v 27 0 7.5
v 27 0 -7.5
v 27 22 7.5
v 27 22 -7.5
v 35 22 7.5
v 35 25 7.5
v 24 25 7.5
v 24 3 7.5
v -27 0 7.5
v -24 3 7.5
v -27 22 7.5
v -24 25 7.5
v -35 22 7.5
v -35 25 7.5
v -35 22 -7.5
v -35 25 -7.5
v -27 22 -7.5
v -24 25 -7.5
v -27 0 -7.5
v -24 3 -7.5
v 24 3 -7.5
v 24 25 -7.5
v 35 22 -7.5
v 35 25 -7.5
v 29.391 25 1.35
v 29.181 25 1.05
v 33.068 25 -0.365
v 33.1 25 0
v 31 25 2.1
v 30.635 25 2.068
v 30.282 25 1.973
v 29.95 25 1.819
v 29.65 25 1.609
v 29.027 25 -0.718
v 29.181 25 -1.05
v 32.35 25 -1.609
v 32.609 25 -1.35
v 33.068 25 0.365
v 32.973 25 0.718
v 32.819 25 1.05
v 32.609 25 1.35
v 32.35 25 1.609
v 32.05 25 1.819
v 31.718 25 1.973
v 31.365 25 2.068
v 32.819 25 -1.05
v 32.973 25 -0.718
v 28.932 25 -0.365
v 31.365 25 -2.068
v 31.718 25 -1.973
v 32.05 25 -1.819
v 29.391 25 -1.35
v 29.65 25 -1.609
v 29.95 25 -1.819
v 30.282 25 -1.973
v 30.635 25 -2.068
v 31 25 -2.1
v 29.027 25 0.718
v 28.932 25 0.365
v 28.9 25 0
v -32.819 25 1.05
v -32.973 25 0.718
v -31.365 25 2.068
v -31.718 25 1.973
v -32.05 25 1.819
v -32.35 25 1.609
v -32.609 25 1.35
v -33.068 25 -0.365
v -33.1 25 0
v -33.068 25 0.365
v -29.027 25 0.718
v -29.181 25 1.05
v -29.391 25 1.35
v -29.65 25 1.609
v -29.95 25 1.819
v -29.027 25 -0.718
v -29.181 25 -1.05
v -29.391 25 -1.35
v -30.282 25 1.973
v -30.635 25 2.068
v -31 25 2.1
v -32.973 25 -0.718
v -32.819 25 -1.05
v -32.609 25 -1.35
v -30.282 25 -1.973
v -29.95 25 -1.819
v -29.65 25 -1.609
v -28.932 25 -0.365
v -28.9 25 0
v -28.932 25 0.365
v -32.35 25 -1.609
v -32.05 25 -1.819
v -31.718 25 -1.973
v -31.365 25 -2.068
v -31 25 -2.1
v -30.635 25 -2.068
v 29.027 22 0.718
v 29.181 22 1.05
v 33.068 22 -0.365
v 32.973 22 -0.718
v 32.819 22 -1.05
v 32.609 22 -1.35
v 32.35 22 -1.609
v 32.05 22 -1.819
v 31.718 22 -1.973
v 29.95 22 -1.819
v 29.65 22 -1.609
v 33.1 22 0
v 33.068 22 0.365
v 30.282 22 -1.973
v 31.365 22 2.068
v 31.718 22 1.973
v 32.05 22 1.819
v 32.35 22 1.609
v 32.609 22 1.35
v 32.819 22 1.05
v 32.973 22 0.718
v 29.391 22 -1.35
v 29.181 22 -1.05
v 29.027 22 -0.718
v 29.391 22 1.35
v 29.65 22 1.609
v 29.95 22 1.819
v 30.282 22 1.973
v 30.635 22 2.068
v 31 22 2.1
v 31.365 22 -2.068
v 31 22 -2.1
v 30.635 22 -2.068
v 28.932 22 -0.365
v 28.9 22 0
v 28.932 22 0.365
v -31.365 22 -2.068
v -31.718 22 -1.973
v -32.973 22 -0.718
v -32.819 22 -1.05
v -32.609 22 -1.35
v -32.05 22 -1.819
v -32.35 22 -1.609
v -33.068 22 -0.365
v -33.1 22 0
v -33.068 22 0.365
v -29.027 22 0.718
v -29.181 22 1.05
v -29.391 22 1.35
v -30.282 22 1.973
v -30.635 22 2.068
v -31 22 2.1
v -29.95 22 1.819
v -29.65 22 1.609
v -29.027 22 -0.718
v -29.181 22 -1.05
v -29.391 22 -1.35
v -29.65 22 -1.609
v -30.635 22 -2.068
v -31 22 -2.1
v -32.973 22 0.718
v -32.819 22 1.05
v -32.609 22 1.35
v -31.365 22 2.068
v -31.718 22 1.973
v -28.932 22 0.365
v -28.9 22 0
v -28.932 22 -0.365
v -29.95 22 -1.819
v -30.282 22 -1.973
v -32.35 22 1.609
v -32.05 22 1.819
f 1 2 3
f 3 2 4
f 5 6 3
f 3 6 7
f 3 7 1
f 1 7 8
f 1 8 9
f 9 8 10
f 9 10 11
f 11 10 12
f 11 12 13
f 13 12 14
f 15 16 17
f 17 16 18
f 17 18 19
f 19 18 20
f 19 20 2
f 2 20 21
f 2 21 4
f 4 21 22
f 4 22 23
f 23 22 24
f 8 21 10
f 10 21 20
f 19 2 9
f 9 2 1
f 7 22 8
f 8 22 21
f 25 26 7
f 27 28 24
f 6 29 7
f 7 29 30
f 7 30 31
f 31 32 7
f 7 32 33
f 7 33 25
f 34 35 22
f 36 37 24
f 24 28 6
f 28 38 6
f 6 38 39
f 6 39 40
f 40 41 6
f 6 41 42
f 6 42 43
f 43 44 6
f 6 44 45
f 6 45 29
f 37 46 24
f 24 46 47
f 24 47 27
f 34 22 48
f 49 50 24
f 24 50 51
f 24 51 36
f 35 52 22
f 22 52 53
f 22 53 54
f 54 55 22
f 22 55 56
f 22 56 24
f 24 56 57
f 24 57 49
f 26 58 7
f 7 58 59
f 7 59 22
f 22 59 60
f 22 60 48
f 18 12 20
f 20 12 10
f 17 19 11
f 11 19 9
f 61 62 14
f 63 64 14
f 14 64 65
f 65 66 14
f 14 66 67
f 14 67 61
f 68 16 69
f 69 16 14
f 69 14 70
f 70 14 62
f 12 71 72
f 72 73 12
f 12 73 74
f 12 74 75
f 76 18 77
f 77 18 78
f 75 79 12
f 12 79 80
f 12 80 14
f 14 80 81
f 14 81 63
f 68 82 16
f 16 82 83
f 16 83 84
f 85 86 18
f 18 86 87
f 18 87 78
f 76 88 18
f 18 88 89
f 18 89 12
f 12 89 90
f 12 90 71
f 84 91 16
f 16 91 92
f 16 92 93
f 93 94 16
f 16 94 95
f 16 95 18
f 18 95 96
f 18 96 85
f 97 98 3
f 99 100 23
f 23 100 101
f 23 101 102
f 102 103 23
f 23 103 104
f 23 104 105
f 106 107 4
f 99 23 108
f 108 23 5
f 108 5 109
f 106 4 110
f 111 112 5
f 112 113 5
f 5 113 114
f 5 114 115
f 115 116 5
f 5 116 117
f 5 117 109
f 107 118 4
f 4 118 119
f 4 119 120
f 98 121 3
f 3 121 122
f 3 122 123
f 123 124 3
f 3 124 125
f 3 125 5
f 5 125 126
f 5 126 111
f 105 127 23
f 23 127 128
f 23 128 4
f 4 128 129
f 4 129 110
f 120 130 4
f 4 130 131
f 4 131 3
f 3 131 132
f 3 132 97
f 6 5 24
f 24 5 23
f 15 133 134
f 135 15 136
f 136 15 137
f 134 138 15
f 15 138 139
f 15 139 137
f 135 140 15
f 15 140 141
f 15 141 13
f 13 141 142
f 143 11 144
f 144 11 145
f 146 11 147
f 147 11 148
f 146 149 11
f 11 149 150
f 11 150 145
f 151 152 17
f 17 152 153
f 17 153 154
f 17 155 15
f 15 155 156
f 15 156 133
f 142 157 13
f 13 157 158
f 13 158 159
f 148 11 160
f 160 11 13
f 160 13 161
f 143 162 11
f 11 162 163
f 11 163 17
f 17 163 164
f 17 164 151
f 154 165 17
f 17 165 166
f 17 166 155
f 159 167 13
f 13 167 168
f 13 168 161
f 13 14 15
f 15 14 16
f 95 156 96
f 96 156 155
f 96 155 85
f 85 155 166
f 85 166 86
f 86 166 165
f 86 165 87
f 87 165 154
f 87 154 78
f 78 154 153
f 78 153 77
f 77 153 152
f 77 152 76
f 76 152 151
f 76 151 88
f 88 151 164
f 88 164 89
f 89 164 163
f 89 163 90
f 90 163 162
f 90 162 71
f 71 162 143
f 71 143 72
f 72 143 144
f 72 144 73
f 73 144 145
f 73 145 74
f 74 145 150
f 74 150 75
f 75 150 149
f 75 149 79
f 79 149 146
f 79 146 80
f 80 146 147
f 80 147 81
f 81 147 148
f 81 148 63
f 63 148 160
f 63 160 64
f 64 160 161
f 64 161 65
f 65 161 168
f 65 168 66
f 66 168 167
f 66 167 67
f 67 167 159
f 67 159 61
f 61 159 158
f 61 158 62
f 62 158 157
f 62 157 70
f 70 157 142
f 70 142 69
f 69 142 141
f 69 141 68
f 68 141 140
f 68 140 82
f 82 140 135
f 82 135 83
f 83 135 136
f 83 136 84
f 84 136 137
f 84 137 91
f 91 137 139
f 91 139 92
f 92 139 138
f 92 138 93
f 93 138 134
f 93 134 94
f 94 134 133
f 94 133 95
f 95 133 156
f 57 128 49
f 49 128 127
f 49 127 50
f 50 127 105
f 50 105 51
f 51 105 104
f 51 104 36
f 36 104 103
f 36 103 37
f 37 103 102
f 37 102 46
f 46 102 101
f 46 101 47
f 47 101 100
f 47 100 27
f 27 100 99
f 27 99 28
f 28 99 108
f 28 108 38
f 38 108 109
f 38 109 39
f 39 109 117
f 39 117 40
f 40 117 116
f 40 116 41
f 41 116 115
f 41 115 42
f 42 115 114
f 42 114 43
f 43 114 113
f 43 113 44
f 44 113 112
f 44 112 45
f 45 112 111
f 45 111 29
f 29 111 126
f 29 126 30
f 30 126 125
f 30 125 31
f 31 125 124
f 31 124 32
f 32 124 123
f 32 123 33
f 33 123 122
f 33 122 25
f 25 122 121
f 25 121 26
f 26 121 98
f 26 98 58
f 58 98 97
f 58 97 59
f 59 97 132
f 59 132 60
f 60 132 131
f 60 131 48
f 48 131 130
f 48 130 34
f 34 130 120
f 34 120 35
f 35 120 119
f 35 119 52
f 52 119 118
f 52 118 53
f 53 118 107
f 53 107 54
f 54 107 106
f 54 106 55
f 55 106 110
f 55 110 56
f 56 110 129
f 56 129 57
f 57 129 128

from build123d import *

# Parameters (mm, degrees)
SKETCH_1_W          = 48
SKETCH_1_H          = 15
EXTRUDE_1_DEPTH     = 3
SKETCH_2_W          = 3
SKETCH_2_H          = 15
EXTRUDE_2_DEPTH     = 25
SKETCH_3_W          = 15
SKETCH_3_H          = 3
EXTRUDE_3_DEPTH     = 8
SKETCH_4_R          = 2.1
CUT_EXTRUDE_3_DEPTH = 100


with BuildPart() as part:
    # 草图1 → 凸台-拉伸1 (new body)
    with BuildSketch(Plane(origin=(0, 0, 0), x_dir=(1, 0, 0), z_dir=(0, 1, 0))):
        Rectangle(SKETCH_1_W, SKETCH_1_H)
    extrude(amount=EXTRUDE_1_DEPTH)

    # 草图2 → 凸台-拉伸2 (add)
    with BuildSketch(Plane(origin=(0, 0, 0), x_dir=(1, 0, 0), z_dir=(0, 1, 0))):
        with Locations((25.5, 0)):
            Rectangle(SKETCH_2_W, SKETCH_2_H)
        with Locations((-25.5, 0)):
            Rectangle(SKETCH_2_W, SKETCH_2_H)
    extrude(amount=EXTRUDE_2_DEPTH)

    # 草图3 → 凸台-拉伸3 (add)
    with BuildSketch(Plane(origin=(27, 0, 0), x_dir=(0, 0, -1), z_dir=(1, 0, 0))):
        with Locations((0, 23.5)):
            Rectangle(SKETCH_3_W, SKETCH_3_H)
    extrude_3 = extrude(amount=EXTRUDE_3_DEPTH)

    # 镜向1: 凸台-拉伸3 across plane
    add(extrude_3.mirror(Plane(origin=(0, 0, 0), x_dir=(0, 0, 1), z_dir=(1, 0, 0))))

    # 草图4 → 切除-拉伸3 (cut)
    with BuildSketch(Plane(origin=(0, 0, 0), x_dir=(1, 0, 0), z_dir=(0, 1, 0))):
        with Locations(Location((-31, 0, 0), (0, 0, 90))):
            Circle(SKETCH_4_R)
    cut_extrude_3 = extrude(amount=CUT_EXTRUDE_3_DEPTH, mode=Mode.SUBTRACT)

    # 镜向2: 切除-拉伸3 across plane
    add(cut_extrude_3.mirror(Plane(origin=(0, 0, 0), x_dir=(0, 0, 1), z_dir=(1, 0, 0))), mode=Mode.SUBTRACT)


solid = part.part
